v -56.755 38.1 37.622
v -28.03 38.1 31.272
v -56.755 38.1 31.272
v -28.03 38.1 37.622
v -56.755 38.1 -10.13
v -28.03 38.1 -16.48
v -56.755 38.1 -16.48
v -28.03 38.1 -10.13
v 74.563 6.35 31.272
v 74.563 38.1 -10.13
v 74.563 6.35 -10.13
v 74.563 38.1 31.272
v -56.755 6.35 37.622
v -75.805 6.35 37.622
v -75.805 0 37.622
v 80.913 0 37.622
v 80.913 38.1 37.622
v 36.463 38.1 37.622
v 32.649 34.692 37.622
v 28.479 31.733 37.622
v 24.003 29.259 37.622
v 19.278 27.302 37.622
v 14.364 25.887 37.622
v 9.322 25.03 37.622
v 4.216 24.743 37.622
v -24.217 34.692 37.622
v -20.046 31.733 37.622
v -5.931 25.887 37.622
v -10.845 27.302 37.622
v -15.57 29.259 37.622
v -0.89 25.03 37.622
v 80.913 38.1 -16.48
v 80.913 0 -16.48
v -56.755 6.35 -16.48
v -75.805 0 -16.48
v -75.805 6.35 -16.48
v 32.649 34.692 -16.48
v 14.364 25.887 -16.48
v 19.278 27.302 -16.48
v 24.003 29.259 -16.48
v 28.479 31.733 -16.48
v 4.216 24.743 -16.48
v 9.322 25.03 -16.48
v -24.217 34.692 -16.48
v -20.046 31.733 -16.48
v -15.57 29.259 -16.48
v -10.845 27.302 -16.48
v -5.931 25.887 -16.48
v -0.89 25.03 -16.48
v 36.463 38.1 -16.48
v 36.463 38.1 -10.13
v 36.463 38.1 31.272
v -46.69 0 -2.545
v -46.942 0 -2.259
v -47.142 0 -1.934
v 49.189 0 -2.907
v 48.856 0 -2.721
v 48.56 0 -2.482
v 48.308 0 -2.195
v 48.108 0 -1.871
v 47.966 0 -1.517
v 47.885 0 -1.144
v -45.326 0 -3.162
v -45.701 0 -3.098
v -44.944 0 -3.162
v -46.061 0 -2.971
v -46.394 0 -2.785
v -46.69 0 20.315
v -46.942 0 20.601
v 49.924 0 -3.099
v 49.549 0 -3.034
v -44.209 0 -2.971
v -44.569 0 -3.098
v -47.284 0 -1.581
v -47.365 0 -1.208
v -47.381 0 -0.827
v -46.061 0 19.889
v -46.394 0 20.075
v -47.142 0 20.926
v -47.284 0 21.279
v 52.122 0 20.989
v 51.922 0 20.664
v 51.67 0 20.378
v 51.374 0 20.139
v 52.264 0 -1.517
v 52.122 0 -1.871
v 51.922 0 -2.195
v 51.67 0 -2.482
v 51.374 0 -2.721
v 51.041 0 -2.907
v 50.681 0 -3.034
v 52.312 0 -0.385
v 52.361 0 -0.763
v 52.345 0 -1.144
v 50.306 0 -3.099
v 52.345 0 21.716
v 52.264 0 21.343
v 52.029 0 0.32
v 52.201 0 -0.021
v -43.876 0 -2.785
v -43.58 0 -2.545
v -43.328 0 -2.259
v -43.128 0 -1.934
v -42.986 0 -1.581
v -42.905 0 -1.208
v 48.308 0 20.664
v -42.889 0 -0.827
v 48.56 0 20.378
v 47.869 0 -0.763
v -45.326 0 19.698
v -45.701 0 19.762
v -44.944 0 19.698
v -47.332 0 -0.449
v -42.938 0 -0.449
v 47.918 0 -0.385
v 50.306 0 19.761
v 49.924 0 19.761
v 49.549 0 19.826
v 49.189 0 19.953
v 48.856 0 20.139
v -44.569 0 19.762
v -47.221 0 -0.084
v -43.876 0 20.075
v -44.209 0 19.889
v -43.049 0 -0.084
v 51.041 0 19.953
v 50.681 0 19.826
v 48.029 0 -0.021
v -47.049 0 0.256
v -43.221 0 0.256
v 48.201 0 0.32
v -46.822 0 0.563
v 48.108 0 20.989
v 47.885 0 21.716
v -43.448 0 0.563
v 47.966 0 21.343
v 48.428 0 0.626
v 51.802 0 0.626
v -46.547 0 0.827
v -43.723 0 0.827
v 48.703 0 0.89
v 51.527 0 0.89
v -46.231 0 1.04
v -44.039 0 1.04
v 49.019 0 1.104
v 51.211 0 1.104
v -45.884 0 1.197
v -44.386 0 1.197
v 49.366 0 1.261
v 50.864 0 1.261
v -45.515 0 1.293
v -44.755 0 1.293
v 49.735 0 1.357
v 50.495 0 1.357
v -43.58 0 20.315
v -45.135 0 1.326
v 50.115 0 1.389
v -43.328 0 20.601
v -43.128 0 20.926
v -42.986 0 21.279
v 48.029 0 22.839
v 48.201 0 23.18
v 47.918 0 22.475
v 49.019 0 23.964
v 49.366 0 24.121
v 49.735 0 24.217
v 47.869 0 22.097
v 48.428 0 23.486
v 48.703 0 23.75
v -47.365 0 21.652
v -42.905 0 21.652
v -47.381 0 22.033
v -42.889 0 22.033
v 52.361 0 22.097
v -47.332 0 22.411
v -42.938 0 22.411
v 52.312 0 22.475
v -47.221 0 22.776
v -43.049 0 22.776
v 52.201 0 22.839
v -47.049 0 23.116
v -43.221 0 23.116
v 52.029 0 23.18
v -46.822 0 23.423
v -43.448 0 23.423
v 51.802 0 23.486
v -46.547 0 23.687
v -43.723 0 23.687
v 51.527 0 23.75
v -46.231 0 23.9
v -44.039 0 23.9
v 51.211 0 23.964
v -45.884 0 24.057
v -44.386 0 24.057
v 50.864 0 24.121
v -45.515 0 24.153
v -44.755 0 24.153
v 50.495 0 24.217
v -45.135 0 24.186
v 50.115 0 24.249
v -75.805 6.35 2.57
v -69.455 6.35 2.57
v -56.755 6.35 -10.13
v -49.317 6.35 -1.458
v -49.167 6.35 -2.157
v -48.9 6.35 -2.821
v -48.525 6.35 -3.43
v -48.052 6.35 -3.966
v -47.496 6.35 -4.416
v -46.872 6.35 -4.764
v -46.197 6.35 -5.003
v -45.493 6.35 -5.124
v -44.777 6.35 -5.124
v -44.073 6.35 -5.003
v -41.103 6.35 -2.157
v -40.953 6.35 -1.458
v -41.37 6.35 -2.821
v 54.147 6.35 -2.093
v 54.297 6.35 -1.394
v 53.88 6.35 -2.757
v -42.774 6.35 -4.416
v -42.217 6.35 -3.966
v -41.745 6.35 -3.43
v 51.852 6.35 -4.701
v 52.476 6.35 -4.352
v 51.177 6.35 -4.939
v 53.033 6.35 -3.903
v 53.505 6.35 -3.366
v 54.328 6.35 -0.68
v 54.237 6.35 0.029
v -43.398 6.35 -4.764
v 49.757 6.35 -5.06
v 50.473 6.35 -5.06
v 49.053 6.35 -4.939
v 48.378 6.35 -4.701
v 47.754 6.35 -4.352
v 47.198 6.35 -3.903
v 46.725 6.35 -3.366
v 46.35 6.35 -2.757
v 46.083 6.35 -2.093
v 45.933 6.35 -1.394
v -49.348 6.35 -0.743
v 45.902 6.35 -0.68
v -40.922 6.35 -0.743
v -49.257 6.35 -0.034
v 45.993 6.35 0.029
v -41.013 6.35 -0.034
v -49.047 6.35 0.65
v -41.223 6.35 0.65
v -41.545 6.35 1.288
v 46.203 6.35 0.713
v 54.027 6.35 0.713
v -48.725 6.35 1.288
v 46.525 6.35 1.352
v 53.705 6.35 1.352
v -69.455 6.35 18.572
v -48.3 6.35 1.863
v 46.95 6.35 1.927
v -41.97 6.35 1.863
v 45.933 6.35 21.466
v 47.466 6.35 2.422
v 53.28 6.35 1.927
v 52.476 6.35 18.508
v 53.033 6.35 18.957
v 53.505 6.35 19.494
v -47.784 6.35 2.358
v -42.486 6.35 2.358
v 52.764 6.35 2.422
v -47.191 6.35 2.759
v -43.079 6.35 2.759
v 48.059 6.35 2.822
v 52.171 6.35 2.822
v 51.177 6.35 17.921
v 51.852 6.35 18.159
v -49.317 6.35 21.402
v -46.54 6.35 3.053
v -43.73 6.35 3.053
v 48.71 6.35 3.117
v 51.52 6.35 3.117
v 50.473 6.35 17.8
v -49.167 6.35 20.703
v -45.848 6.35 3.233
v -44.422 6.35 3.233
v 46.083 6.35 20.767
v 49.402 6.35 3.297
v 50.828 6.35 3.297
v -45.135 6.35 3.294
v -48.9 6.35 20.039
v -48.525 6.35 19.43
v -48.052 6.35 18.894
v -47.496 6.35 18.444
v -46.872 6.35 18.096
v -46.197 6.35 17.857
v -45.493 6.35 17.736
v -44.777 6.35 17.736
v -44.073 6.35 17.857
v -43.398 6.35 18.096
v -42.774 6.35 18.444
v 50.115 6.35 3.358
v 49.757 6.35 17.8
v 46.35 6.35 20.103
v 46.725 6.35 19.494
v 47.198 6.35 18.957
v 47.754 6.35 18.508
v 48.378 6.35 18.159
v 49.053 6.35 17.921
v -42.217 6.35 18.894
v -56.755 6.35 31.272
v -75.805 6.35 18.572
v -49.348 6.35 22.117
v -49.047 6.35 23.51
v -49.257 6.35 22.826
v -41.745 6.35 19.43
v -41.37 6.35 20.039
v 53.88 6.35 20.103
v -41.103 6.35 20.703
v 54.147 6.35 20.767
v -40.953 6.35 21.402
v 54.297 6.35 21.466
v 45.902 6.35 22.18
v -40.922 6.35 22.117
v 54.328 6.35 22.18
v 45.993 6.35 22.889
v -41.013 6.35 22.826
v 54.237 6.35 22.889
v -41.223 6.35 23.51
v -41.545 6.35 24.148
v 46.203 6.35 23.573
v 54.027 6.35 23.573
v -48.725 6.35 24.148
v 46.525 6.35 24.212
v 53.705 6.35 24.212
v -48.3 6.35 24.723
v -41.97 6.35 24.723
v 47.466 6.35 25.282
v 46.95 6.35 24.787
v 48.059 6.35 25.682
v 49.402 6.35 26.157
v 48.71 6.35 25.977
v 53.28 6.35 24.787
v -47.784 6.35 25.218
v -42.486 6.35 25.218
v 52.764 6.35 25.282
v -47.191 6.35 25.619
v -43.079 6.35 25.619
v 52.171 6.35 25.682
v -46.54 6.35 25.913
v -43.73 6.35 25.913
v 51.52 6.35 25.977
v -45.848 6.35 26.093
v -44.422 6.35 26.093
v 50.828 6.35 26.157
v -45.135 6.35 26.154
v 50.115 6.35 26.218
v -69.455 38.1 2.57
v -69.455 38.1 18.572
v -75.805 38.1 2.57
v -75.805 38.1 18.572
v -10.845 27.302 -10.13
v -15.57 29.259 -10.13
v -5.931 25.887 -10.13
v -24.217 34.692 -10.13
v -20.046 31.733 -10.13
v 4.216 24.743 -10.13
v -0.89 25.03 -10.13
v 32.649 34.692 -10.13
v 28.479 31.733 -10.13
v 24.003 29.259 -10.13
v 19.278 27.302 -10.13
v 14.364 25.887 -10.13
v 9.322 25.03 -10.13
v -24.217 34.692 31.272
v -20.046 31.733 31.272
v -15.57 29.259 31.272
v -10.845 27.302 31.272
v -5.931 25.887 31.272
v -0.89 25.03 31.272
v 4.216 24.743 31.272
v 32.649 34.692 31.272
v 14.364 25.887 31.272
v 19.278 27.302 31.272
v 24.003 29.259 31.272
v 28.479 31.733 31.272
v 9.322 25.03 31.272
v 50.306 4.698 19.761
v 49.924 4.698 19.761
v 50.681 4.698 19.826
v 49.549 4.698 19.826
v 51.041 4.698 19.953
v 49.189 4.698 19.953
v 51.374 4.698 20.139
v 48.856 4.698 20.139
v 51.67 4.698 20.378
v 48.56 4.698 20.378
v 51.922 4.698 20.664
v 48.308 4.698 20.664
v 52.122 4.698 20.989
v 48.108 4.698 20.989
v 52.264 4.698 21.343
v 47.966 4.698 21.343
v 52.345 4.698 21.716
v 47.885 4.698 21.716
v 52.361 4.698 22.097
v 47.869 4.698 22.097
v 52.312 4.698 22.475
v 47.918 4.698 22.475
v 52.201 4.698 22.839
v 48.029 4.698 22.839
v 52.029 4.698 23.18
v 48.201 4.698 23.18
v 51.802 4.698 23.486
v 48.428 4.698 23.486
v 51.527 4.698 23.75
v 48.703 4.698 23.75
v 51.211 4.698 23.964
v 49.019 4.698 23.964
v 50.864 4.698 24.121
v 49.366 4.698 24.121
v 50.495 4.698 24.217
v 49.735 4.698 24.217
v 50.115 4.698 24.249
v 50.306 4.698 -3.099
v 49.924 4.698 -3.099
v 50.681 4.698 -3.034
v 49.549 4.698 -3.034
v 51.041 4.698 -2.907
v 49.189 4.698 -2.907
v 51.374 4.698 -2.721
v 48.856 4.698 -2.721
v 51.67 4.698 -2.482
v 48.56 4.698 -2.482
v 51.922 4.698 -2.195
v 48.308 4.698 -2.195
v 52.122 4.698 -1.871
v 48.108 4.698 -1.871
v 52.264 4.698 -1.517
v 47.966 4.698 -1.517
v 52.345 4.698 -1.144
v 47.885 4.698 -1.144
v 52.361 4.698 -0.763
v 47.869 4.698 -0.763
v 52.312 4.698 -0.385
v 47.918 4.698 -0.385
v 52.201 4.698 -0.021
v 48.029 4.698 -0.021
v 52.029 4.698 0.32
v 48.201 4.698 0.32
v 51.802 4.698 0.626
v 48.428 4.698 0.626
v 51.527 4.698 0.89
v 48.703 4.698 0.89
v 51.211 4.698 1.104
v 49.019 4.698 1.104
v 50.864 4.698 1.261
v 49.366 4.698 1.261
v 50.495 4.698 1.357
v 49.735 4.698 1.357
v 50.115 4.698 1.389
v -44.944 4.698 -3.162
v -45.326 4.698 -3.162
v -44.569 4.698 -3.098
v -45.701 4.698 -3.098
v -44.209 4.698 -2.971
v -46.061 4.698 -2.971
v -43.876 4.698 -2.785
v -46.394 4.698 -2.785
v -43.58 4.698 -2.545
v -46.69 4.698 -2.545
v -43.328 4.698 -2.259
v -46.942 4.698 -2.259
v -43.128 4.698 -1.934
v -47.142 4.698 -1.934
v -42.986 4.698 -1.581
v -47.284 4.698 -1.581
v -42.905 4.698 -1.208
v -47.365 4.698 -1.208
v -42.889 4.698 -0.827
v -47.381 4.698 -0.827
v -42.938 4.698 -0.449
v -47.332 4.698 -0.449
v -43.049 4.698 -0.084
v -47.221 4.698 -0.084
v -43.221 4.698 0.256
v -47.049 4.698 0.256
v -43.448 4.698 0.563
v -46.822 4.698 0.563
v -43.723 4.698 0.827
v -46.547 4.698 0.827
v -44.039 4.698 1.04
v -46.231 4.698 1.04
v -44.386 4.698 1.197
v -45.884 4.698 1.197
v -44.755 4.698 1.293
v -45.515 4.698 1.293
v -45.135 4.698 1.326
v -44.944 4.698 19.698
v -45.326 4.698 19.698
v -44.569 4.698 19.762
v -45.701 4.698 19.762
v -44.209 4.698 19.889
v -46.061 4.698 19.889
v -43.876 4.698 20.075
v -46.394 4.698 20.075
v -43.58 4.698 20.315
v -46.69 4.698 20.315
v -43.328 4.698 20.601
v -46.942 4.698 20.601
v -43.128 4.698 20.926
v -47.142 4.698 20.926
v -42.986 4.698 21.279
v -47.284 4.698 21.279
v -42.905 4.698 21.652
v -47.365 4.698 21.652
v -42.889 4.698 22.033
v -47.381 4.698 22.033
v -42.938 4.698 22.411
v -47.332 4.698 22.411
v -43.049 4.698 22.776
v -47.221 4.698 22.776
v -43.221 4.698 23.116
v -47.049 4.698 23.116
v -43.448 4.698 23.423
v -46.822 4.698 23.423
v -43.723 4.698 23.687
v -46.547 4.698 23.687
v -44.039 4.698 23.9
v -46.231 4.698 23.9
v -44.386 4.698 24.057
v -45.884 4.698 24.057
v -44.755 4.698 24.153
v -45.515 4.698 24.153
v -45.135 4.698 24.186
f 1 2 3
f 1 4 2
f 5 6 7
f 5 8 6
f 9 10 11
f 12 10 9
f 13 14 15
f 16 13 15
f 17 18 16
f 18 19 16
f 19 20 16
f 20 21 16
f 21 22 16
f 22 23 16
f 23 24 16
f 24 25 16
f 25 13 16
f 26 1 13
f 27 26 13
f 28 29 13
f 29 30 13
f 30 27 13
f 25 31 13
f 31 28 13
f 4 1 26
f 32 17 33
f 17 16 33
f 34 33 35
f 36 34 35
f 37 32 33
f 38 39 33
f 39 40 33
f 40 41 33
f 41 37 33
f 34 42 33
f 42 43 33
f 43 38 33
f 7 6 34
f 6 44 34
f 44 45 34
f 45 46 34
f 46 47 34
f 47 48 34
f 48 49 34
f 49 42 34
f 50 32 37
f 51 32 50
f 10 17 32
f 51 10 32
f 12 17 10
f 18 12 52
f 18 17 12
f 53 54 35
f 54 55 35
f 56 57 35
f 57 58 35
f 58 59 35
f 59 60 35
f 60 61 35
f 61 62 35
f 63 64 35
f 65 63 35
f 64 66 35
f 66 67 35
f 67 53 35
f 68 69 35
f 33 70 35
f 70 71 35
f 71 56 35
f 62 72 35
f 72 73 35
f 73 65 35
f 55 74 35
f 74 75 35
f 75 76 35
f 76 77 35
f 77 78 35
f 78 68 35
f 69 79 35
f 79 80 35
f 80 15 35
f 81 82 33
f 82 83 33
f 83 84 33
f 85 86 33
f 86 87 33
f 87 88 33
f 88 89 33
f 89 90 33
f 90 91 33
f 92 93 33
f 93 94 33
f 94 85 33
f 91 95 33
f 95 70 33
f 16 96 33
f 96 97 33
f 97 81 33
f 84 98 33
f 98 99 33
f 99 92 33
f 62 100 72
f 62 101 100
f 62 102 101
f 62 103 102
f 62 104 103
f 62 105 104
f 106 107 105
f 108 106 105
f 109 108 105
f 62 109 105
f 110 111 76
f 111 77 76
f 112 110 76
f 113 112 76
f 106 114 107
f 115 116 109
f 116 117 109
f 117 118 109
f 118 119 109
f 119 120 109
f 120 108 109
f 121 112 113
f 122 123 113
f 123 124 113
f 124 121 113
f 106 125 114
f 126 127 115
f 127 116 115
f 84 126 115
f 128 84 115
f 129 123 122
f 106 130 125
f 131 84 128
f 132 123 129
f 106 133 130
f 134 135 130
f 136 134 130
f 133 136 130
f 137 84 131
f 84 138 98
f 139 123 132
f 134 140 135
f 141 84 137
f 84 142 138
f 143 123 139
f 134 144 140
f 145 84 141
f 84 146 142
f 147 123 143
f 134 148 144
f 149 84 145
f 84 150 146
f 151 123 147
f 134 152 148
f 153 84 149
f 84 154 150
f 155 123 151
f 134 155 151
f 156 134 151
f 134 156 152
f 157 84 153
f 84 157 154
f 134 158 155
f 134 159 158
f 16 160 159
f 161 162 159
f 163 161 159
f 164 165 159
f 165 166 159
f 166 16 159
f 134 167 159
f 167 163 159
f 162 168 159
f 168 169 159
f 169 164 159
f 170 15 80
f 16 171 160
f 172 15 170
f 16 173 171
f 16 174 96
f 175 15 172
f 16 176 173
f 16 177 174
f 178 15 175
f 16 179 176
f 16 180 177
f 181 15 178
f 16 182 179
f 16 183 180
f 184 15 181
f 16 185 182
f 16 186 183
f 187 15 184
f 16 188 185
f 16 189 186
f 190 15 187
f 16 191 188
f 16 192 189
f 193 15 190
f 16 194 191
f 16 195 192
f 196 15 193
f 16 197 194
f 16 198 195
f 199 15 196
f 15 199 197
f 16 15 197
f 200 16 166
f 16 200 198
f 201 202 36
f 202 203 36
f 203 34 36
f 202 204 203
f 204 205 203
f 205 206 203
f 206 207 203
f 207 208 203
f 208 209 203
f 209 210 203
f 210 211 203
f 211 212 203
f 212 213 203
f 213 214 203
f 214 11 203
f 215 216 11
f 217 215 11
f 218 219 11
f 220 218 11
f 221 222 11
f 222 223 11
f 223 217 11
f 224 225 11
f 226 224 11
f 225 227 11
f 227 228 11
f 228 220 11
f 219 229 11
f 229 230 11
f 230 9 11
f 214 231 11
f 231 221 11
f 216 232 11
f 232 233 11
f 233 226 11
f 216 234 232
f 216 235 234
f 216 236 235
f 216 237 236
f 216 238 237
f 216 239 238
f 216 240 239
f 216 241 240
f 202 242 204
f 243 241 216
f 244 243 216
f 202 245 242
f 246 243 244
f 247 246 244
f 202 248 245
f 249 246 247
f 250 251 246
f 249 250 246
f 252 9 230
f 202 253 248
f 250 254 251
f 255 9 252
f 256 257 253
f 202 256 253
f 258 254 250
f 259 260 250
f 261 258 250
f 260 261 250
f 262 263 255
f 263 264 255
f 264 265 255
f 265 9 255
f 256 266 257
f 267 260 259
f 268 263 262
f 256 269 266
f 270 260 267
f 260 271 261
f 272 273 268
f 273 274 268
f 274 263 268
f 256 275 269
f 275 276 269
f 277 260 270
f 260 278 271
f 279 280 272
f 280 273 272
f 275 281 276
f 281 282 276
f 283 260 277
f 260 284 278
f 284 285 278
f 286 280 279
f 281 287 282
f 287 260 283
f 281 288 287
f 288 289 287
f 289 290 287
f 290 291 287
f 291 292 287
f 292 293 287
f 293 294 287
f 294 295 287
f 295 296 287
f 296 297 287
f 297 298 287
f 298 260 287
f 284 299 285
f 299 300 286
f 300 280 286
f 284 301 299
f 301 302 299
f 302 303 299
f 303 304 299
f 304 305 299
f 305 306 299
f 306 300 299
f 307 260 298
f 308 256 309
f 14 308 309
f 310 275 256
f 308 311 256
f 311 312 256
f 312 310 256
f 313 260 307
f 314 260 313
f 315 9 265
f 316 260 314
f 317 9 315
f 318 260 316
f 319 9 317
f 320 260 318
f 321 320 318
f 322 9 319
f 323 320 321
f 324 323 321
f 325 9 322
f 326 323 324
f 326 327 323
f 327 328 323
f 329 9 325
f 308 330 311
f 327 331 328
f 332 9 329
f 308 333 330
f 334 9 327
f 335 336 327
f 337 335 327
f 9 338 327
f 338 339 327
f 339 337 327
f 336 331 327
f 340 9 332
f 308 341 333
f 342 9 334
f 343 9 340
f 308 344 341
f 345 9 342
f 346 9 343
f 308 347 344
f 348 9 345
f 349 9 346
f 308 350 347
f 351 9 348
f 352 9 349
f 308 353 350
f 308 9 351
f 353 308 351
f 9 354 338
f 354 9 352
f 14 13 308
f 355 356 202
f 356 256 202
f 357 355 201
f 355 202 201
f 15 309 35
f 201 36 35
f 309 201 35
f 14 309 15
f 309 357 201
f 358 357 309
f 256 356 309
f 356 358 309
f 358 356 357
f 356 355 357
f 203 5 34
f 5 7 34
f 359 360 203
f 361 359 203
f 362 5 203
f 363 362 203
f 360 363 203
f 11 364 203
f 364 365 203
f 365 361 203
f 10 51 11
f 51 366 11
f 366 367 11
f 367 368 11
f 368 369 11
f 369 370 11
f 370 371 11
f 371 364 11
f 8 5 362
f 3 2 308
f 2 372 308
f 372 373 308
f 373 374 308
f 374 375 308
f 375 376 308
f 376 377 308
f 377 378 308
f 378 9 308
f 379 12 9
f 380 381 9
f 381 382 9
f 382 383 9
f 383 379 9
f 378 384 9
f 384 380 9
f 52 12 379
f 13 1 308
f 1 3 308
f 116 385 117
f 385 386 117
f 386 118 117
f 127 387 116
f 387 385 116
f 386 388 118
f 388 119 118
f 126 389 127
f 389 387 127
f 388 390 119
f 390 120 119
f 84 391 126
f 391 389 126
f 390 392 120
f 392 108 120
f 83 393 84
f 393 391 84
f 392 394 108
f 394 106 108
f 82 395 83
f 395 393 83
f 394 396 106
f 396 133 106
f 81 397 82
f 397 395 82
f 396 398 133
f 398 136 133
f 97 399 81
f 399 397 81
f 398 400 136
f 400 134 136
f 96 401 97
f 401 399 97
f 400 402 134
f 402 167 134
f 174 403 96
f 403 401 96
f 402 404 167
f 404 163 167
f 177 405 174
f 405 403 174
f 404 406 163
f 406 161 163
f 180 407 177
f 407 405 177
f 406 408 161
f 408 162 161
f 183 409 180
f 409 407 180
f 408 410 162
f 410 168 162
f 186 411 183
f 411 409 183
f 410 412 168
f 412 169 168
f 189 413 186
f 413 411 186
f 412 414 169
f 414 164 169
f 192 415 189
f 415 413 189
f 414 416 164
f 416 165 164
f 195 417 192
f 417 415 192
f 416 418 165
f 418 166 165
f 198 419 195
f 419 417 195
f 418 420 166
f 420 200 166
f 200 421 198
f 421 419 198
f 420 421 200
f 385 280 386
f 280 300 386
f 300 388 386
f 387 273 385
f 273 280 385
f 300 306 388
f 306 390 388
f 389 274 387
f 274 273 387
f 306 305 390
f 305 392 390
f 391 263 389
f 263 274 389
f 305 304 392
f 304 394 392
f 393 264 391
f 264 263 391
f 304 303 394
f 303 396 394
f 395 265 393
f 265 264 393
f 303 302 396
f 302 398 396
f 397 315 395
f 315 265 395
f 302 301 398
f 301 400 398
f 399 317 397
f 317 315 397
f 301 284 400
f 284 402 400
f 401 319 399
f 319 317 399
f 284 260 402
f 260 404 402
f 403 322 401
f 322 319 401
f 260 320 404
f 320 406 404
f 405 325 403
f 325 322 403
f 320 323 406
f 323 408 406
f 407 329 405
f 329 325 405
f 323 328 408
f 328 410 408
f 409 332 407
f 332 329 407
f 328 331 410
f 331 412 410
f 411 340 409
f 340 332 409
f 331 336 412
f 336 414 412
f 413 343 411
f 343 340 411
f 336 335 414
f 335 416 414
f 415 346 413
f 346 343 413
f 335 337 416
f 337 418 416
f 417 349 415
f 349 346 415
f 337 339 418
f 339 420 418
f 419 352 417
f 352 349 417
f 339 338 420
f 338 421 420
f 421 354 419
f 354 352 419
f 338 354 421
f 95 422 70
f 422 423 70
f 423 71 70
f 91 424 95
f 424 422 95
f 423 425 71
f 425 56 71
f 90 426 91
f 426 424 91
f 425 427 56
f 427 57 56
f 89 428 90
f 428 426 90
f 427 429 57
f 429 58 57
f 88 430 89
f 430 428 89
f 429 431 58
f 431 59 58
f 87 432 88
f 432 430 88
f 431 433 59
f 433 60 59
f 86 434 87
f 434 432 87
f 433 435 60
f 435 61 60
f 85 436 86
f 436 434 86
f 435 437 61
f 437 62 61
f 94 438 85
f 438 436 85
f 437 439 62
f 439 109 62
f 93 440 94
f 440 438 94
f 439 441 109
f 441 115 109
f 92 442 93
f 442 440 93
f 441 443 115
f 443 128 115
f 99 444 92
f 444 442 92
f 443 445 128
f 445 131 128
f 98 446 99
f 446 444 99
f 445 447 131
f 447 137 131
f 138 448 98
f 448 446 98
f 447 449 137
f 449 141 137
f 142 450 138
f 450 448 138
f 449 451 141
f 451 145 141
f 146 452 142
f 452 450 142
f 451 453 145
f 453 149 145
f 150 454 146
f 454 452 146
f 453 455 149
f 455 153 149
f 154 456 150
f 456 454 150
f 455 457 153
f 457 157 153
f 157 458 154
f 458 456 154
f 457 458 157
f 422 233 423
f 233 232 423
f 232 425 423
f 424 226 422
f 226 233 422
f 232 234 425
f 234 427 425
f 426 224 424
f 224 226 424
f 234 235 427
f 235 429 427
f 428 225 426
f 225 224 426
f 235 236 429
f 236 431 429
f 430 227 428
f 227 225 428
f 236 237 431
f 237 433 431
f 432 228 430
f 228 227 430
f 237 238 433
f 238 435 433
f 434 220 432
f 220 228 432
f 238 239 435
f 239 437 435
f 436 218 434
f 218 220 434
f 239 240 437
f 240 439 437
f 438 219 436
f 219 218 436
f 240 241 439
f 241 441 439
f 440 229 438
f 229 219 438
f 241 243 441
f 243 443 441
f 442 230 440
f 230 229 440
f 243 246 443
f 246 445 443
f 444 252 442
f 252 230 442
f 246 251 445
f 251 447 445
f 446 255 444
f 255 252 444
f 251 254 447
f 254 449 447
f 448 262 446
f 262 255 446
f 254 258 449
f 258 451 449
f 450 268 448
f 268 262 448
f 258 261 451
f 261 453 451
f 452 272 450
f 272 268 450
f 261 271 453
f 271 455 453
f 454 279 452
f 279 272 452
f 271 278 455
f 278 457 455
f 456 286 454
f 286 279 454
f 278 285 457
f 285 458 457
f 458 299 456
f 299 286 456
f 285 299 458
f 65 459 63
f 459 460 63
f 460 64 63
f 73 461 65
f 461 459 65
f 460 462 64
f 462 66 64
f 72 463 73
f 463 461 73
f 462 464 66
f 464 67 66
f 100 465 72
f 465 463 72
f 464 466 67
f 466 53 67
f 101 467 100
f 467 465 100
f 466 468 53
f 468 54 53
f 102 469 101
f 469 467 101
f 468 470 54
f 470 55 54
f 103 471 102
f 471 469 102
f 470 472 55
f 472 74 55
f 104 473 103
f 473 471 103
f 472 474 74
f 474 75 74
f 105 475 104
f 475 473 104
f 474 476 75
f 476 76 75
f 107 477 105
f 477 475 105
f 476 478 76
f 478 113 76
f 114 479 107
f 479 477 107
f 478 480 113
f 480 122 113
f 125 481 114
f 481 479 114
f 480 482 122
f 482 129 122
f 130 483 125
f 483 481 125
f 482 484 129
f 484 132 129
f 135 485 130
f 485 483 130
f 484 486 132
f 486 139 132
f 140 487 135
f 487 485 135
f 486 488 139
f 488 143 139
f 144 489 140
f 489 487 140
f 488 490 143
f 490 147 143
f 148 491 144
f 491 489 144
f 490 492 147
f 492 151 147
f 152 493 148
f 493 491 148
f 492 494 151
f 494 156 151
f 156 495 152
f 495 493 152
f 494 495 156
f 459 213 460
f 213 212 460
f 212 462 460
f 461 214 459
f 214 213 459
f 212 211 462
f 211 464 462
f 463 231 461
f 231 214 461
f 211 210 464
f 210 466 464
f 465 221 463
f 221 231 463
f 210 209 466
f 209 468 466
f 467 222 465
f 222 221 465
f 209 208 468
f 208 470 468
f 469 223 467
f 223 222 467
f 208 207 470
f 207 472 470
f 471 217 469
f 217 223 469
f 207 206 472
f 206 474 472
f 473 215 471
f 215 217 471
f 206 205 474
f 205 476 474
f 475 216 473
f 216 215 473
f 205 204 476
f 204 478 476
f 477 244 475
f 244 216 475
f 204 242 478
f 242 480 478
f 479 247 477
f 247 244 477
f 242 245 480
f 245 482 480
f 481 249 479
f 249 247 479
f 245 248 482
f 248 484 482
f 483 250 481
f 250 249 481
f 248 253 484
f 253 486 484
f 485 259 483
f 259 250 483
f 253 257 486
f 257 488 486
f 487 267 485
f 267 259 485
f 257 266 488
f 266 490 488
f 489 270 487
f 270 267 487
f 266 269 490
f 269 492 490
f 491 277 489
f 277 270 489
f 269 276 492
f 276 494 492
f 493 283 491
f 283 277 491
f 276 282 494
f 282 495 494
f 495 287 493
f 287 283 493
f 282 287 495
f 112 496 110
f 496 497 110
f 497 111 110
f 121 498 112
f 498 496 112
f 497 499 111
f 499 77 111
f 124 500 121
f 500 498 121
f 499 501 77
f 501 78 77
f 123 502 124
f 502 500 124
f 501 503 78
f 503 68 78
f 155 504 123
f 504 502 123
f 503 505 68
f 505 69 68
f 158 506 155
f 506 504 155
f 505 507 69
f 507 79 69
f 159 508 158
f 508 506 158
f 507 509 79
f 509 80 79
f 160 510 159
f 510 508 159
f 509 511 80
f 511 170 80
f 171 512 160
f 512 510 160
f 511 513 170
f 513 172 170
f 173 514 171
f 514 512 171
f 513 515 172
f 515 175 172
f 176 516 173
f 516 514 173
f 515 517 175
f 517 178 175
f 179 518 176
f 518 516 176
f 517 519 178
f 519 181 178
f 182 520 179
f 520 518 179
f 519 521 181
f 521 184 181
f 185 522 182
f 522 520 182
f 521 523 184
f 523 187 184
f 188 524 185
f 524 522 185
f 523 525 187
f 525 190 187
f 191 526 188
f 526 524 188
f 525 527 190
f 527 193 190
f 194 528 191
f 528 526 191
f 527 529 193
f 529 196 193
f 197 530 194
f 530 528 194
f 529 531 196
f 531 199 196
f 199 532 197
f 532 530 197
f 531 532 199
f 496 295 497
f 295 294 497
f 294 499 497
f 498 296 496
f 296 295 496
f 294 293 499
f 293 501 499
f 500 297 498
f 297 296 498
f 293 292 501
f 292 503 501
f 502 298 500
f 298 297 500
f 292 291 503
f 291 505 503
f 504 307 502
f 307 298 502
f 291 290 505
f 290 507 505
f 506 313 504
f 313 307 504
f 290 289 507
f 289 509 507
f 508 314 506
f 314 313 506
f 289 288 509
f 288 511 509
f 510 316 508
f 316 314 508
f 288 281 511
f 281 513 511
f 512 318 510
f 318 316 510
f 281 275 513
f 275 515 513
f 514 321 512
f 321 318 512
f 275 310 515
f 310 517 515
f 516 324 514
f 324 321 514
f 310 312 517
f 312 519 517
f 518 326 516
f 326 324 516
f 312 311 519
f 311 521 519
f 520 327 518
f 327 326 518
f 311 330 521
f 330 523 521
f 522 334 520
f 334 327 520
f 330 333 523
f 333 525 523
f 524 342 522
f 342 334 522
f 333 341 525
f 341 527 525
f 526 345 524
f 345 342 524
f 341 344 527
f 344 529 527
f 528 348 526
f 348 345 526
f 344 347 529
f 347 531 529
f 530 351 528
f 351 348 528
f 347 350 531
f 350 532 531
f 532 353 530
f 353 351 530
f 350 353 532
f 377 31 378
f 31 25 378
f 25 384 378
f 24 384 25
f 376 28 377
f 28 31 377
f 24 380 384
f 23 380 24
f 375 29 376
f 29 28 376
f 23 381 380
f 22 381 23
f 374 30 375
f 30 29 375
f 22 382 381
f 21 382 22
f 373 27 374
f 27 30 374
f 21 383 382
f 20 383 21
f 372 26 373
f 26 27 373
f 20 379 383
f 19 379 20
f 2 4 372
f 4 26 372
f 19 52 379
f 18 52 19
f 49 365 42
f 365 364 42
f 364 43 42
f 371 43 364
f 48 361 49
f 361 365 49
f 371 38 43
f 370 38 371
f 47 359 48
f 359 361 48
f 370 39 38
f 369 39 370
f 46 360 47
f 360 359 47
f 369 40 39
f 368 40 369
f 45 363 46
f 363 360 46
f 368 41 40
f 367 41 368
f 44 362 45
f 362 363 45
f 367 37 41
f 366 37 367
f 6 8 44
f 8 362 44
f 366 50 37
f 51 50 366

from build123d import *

# Parameters (mm, degrees)
SKETCH1_W                                         = 6.35
SKETCH1_H                                         = 16.002
BOSS_EXTRUDE1_DEPTH                               = 38.1
SKETCH1_H_2                                       = 54.102
BOSS_EXTRUDE1_2_DEPTH                             = 38.1
BOSS_EXTRUDE2_DEPTH                               = 6.35
SKETCH1_5_W                                       = 131.318
SKETCH1_5_H                                       = 6.35
BOSS_EXTRUDE3_DEPTH                               = 38.1
CSK_FOR_8_FLAT_HEAD_MACHINE_SCREW_100_D           = 4.4958
CSK_FOR_8_FLAT_HEAD_MACHINE_SCREW_100_CSINK_D     = 8.4328
CSK_FOR_8_FLAT_HEAD_MACHINE_SCREW_100_CSINK_ANGLE = 100
BOSS_EXTRUDE6_DEPTH                               = 6.35
CUT_EXTRUDE3_DEPTH                                = 105.525006773
CUT_EXTRUDE3_DEPTH_BACK                           = 105.525006773
BOSS_EXTRUDE7_DEPTH                               = 6.35


with BuildPart() as part:
    # Sketch1 → Boss-Extrude1 (new body)
    with BuildSketch(Plane(origin=(0, 0, 0), x_dir=(1, 0, 0), z_dir=(0, 1, 0))):
        with Locations((-72.630450684, -10.571178218)):
            Rectangle(SKETCH1_W, SKETCH1_H)
    extrude(amount=BOSS_EXTRUDE1_DEPTH)



with BuildPart() as body_2:
    # Sketch1 → Boss-Extrude1 2 (new body)
    with BuildSketch(Plane(origin=(0, 0, 0), x_dir=(1, 0, 0), z_dir=(0, 1, 0))):
        with Locations((77.737549316, -10.571178218)):
            Rectangle(SKETCH1_W, SKETCH1_H_2)
    extrude(amount=BOSS_EXTRUDE1_2_DEPTH)


with BuildPart() as part_1:
    add(part.part)

    add(body_2.part)  # Boss-Extrude2 merges body 2
    # Sketch1<4> → Boss-Extrude2 (add)
    with BuildSketch(Plane(origin=(0, 0, 0), x_dir=(1, 0, 0), z_dir=(0, 1, 0))):
        Polygon((-56.755450684, 10.129821782), (-69.455450684, 10.129821782), (-69.455450684, -2.570178218), (-69.455450684, -18.572178218), (-69.455450684, -31.272178218), (-56.755450684, -31.272178218), (74.562549316, -31.272178218), (74.562549316, 10.129821782), align=None)
    extrude(amount=BOSS_EXTRUDE2_DEPTH)

    # Sketch1<5> → Boss-Extrude3 (add)
    with BuildSketch(Plane(origin=(0, 0, 0), x_dir=(1, 0, 0), z_dir=(0, 1, 0))):
        with Locations((8.903549316, 13.304821782)):
            Rectangle(SKETCH1_5_W, SKETCH1_5_H)
        with Locations((8.903549316, -34.447178218)):
            Rectangle(SKETCH1_5_W, SKETCH1_5_H)
    extrude(amount=BOSS_EXTRUDE3_DEPTH)

    # CSK for #8 Flat Head Machine Screw (100)2 (through all)
    with Locations(Plane(origin=(0, 6.35, 0), x_dir=(1, 0, 0), z_dir=(0, 1, 0))):
        with Locations((-45.134950684, -21.937678218), (-45.134950684, 0.922321782), (50.115049316, 0.858821782), (50.115049316, -22.001178218)):
            CounterSinkHole(CSK_FOR_8_FLAT_HEAD_MACHINE_SCREW_100_D / 2, CSK_FOR_8_FLAT_HEAD_MACHINE_SCREW_100_CSINK_D / 2, counter_sink_angle=CSK_FOR_8_FLAT_HEAD_MACHINE_SCREW_100_CSINK_ANGLE)

    # Sketch1<8> → Boss-Extrude6 (add)
    with BuildSketch(Plane(origin=(0, 0, 0), x_dir=(1, 0, 0), z_dir=(0, 1, 0))):
        Polygon((-69.455450684, -31.272178218), (-69.455450684, -18.572178218), (-75.805450684, -18.572178218), (-75.805450684, -31.272178218), (-75.805450684, -37.622178218), (-56.755450684, -37.622178218), (-56.755450684, -31.272178218), align=None)
    extrude(amount=BOSS_EXTRUDE6_DEPTH)

    # Sketch11 → Cut-Extrude3 (cut, two sides: drawn at the far end of the back side and taken through both)
    with BuildSketch(Plane.XY.offset(37.622178218).offset(-CUT_EXTRUDE3_DEPTH_BACK)):
        with BuildLine():
            Line((-28.029969106, 38.1), (36.462549316, 38.1))
            ThreePointArc((36.462549316, 38.1), (4.216290105, 24.743162099), (-28.029969106, 38.1))
        make_face()
    extrude(amount=CUT_EXTRUDE3_DEPTH + CUT_EXTRUDE3_DEPTH_BACK, mode=Mode.SUBTRACT)

    # Sketch1<9> → Boss-Extrude7 (add)
    with BuildSketch(Plane(origin=(0, 0, 0), x_dir=(1, 0, 0), z_dir=(0, 1, 0))):
        Polygon((-69.455450684, -2.570178218), (-69.455450684, 10.129821782), (-56.755450684, 10.129821782), (-56.755450684, 16.479821782), (-69.455450684, 16.479821782), (-75.805450684, 16.479821782), (-75.805450684, 10.129821782), (-75.805450684, -2.570178218), align=None)
    extrude(amount=BOSS_EXTRUDE7_DEPTH)


solid = part_1.part
